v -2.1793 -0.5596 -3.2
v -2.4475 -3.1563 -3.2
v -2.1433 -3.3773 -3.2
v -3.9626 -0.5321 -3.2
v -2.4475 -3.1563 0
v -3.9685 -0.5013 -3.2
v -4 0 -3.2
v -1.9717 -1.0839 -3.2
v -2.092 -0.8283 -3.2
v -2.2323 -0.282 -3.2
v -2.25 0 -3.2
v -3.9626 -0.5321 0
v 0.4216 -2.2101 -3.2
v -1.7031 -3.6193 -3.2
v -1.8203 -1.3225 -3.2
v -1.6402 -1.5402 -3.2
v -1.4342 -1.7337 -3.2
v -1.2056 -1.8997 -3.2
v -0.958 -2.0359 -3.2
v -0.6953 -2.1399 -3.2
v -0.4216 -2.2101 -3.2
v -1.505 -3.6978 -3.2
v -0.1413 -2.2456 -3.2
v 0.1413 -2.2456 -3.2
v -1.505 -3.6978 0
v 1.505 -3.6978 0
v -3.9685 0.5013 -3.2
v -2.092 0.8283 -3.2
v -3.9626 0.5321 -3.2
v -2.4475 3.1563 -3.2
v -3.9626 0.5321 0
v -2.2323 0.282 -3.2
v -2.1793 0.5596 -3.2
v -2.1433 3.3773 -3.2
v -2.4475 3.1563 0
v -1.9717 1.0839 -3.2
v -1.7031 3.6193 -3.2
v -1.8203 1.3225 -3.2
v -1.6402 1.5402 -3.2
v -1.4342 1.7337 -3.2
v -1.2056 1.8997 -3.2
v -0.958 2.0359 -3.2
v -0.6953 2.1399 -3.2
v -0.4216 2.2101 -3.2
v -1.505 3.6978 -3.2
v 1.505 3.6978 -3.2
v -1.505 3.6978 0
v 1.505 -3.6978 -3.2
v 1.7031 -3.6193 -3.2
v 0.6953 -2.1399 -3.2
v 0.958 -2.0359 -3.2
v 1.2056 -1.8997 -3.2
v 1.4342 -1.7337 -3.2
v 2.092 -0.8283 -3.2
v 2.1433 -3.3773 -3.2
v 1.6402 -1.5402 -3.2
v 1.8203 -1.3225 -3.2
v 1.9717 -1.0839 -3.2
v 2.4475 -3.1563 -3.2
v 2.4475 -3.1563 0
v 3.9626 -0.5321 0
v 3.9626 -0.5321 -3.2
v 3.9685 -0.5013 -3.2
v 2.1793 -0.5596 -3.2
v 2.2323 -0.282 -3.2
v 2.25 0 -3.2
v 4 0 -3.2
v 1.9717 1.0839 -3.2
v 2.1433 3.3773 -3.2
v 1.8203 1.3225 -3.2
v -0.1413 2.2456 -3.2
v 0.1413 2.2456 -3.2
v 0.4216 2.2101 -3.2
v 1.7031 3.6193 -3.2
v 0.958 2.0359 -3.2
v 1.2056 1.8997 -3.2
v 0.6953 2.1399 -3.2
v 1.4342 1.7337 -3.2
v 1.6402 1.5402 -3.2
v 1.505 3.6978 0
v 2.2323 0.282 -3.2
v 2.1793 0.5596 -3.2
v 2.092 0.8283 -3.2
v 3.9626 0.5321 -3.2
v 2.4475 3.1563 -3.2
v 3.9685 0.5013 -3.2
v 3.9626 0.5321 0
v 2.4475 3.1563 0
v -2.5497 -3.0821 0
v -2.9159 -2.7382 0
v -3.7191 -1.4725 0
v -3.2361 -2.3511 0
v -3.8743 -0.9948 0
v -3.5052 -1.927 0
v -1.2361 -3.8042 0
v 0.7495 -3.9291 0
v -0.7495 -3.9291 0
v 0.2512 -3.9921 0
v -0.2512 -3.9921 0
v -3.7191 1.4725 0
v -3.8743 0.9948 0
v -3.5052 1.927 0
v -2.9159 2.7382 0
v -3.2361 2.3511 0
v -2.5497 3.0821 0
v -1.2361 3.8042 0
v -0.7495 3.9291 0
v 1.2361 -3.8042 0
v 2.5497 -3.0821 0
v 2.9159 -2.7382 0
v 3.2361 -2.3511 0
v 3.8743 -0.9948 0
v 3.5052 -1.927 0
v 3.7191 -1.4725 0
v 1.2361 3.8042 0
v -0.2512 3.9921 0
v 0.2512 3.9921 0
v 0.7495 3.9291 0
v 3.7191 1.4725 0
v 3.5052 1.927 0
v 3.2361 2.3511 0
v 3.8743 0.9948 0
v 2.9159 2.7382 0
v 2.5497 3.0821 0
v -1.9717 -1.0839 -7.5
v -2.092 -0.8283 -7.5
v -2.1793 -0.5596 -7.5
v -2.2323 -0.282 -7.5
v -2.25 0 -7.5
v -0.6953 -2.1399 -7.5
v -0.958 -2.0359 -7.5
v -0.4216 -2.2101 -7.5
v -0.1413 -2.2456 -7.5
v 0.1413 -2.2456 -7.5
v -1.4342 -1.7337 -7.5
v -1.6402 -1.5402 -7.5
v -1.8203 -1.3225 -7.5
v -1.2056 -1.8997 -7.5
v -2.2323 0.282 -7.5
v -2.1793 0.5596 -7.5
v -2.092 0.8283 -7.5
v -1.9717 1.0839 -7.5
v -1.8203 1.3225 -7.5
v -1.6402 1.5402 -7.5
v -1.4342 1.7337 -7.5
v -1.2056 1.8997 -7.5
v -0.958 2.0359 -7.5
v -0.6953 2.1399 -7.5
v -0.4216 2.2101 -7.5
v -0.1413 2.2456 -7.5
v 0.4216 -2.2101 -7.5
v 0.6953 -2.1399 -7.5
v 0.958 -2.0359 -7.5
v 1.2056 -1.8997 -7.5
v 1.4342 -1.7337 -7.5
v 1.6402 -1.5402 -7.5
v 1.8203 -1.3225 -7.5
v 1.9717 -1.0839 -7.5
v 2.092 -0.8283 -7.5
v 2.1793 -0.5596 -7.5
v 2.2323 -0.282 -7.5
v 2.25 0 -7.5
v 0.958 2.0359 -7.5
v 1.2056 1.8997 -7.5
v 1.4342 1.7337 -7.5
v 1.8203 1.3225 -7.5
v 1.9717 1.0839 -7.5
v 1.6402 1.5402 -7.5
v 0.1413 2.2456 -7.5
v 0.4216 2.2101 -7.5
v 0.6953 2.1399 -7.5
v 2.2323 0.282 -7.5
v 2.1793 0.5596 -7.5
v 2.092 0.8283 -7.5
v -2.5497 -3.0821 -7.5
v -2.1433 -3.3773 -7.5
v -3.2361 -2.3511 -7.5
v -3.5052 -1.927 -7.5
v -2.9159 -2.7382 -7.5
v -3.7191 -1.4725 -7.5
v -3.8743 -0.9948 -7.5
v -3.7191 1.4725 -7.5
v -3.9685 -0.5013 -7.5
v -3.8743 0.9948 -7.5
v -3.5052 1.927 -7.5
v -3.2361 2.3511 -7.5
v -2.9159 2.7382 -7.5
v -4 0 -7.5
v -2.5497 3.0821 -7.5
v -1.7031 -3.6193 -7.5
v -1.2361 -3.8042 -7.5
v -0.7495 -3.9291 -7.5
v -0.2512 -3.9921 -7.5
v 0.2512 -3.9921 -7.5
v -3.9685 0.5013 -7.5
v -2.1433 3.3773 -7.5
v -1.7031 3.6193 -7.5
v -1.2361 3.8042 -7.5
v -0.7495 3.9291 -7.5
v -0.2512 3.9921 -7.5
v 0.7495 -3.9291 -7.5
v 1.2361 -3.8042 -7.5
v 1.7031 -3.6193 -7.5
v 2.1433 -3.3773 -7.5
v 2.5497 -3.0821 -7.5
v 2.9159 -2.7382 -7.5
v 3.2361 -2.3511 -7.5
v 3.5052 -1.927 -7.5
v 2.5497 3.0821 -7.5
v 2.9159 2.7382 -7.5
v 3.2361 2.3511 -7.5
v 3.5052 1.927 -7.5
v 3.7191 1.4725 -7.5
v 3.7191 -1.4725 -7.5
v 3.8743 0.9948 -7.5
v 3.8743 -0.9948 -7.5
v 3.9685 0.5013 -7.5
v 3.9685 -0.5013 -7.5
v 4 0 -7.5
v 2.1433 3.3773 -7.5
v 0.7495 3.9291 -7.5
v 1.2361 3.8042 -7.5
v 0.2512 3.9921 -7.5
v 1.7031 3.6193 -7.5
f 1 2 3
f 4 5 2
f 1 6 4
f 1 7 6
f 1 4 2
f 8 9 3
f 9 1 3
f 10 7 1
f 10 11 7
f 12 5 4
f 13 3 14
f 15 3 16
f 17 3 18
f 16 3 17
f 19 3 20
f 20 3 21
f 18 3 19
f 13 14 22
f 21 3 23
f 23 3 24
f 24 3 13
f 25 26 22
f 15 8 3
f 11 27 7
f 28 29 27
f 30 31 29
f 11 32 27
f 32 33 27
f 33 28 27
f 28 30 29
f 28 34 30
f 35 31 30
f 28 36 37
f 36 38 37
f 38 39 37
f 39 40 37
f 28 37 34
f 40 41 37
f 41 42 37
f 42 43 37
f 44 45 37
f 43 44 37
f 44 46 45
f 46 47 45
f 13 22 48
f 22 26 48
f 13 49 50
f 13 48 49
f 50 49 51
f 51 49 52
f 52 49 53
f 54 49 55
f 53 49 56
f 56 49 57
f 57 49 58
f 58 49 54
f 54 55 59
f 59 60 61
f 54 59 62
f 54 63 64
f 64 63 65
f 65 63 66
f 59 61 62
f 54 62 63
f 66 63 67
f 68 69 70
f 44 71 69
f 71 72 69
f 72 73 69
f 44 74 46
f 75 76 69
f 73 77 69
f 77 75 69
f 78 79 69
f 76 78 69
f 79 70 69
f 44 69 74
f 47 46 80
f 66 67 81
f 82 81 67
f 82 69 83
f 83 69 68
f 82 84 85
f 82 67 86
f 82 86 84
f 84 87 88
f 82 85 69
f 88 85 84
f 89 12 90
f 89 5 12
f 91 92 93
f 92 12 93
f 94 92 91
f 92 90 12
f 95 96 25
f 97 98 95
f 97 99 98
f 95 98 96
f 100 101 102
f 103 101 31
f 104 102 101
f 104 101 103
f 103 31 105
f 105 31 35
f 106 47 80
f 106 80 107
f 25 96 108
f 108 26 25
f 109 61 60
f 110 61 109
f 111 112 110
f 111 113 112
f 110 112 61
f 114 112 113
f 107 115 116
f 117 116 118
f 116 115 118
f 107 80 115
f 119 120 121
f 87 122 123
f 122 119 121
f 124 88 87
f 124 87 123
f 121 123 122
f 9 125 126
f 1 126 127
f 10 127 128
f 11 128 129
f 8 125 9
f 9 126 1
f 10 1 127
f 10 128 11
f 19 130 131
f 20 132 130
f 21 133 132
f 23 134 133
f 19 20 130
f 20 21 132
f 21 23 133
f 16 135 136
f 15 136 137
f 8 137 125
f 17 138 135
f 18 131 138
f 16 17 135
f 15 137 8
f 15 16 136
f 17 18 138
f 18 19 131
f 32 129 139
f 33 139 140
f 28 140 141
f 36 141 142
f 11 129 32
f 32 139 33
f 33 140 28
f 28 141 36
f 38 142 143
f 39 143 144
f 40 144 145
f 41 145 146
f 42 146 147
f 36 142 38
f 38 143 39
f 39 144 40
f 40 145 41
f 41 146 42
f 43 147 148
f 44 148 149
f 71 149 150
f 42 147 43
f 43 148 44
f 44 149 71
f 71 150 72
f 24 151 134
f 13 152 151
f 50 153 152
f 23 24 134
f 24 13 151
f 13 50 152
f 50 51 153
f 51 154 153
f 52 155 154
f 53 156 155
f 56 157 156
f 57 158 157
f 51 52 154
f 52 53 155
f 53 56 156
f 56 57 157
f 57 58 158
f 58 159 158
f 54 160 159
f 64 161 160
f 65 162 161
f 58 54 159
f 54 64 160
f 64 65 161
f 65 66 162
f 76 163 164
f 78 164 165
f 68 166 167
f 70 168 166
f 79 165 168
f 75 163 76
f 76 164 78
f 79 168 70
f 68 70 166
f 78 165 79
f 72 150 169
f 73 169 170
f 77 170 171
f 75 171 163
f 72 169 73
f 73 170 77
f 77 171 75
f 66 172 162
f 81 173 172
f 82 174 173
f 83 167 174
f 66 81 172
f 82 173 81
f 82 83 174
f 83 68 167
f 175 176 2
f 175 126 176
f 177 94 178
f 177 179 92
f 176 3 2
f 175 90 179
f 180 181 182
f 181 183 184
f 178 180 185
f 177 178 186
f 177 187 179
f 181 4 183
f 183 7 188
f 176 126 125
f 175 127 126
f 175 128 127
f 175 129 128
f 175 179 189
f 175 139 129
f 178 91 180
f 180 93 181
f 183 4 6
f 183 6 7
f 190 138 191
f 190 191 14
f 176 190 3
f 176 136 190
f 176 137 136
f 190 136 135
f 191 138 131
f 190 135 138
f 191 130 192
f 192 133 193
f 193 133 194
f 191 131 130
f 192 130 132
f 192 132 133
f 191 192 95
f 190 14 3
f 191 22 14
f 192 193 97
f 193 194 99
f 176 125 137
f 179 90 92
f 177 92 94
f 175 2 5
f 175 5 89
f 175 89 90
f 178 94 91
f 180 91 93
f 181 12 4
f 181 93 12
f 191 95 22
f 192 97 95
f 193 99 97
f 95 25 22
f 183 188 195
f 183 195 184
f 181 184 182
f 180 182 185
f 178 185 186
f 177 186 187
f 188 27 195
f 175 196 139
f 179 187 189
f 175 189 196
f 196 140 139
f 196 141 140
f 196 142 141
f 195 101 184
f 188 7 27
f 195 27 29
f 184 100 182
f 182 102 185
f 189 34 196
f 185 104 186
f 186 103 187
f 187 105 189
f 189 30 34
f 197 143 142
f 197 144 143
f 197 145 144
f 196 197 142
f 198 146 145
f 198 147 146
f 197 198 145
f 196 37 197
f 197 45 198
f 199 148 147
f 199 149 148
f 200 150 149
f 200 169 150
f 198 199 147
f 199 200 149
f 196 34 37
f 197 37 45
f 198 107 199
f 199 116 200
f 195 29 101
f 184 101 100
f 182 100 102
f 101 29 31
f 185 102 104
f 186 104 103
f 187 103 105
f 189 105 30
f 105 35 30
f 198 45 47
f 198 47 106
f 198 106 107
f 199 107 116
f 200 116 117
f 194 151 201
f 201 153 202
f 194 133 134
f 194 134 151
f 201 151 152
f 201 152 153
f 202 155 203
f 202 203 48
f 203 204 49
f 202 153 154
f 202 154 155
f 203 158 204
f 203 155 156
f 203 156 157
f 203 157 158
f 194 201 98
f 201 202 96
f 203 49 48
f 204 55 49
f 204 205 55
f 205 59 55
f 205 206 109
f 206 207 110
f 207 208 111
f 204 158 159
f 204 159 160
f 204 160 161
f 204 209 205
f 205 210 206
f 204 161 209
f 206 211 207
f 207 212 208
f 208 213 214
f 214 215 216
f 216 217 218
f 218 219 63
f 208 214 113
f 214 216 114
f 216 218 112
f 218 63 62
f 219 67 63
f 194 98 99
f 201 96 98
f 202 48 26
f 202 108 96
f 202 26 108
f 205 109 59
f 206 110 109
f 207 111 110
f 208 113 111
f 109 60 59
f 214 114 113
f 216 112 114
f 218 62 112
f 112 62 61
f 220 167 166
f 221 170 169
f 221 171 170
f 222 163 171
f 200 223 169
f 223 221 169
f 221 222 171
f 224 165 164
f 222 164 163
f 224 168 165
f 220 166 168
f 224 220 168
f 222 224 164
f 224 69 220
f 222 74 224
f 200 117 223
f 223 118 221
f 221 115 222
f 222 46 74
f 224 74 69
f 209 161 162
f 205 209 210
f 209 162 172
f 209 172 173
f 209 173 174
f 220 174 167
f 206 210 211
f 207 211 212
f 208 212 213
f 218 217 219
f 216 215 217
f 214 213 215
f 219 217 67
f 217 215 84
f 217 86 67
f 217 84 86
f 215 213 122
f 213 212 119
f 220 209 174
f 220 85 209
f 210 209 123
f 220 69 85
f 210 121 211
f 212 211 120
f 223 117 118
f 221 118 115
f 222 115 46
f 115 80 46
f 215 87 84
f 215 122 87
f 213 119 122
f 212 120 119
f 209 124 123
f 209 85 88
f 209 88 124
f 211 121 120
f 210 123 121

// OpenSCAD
$fn = 50;

difference() {
	union() {
		translate(v = [0, 0, -7.5]) {
			cylinder(h = 10.5, r = 4.0);
		}
	}
	union() {
		translate(v = [0, 0, 0]) {
			rotate(a = [0, 0, 0]) {
				difference() {
					union() {
						translate(v = [0, 0, -3.2]) {
							linear_extrude(height = 3.2) {
								polygon(points = [[4.2698, 0.0], [2.1349000000000005, 3.697755269078796], [-2.134899999999999, 3.6977552690787965], [-4.2698, 5.228996902999369e-16], [-2.134900000000002, -3.6977552690787956], [2.1348999999999974, -3.697755269078798]]);
							}
						}
					}
					union();
				}
			}
		}
		#cylinder(h = 3, r = 5.0);
		#translate(v = [0, 0, -100.0]) {
			cylinder(h = 200, r = 2.25);
		}
	}
}
